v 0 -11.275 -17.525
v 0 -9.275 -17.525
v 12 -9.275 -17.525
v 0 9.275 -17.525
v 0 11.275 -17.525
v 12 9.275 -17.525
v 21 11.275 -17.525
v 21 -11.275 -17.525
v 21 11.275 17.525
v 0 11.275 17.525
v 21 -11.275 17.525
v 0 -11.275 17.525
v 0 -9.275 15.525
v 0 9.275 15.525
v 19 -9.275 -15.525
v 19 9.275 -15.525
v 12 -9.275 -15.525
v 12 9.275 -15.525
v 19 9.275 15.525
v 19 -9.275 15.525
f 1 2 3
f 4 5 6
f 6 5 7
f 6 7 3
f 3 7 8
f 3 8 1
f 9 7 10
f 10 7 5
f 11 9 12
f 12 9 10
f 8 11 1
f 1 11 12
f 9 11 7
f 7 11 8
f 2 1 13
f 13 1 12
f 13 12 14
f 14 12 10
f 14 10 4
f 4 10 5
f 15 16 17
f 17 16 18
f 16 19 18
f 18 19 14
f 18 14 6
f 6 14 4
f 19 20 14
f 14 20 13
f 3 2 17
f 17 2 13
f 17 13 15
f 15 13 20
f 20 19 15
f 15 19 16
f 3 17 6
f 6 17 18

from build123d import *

# Parameters (mm, degrees)
SKETCH4_W           = 31.05
SKETCH4_H           = 18.55
BOSS_EXTRUDE1_DEPTH = 19
SHELL1_T            = 2
SKETCH5_W           = 12
SKETCH5_H           = 18.55
CUT_EXTRUDE1_DEPTH  = 2


with BuildPart() as part:
    # Sketch4 → Boss-Extrude1 (new body)
    with BuildSketch(Plane(origin=(0, 0, 0), x_dir=(0, 0, -1), z_dir=(1, 0, 0))):
        Rectangle(SKETCH4_W, SKETCH4_H)
    extrude(amount=BOSS_EXTRUDE1_DEPTH)

    # Shell1
    shell1_openings = [part.faces().sort_by_distance(p)[0] for p in [
        (0, 0, 0),
    ]]
    offset(amount=SHELL1_T, openings=shell1_openings, kind=Kind.INTERSECTION)

    # Sketch5 → Cut-Extrude1 (cut)
    with BuildSketch(Plane(origin=(0, 0, -17.525), x_dir=(-1, 0, 0), z_dir=(0, 0, -1))):
        with Locations((-6, 0)):
            Rectangle(SKETCH5_W, SKETCH5_H)
    extrude(amount=-CUT_EXTRUDE1_DEPTH, mode=Mode.SUBTRACT)


solid = part.part
